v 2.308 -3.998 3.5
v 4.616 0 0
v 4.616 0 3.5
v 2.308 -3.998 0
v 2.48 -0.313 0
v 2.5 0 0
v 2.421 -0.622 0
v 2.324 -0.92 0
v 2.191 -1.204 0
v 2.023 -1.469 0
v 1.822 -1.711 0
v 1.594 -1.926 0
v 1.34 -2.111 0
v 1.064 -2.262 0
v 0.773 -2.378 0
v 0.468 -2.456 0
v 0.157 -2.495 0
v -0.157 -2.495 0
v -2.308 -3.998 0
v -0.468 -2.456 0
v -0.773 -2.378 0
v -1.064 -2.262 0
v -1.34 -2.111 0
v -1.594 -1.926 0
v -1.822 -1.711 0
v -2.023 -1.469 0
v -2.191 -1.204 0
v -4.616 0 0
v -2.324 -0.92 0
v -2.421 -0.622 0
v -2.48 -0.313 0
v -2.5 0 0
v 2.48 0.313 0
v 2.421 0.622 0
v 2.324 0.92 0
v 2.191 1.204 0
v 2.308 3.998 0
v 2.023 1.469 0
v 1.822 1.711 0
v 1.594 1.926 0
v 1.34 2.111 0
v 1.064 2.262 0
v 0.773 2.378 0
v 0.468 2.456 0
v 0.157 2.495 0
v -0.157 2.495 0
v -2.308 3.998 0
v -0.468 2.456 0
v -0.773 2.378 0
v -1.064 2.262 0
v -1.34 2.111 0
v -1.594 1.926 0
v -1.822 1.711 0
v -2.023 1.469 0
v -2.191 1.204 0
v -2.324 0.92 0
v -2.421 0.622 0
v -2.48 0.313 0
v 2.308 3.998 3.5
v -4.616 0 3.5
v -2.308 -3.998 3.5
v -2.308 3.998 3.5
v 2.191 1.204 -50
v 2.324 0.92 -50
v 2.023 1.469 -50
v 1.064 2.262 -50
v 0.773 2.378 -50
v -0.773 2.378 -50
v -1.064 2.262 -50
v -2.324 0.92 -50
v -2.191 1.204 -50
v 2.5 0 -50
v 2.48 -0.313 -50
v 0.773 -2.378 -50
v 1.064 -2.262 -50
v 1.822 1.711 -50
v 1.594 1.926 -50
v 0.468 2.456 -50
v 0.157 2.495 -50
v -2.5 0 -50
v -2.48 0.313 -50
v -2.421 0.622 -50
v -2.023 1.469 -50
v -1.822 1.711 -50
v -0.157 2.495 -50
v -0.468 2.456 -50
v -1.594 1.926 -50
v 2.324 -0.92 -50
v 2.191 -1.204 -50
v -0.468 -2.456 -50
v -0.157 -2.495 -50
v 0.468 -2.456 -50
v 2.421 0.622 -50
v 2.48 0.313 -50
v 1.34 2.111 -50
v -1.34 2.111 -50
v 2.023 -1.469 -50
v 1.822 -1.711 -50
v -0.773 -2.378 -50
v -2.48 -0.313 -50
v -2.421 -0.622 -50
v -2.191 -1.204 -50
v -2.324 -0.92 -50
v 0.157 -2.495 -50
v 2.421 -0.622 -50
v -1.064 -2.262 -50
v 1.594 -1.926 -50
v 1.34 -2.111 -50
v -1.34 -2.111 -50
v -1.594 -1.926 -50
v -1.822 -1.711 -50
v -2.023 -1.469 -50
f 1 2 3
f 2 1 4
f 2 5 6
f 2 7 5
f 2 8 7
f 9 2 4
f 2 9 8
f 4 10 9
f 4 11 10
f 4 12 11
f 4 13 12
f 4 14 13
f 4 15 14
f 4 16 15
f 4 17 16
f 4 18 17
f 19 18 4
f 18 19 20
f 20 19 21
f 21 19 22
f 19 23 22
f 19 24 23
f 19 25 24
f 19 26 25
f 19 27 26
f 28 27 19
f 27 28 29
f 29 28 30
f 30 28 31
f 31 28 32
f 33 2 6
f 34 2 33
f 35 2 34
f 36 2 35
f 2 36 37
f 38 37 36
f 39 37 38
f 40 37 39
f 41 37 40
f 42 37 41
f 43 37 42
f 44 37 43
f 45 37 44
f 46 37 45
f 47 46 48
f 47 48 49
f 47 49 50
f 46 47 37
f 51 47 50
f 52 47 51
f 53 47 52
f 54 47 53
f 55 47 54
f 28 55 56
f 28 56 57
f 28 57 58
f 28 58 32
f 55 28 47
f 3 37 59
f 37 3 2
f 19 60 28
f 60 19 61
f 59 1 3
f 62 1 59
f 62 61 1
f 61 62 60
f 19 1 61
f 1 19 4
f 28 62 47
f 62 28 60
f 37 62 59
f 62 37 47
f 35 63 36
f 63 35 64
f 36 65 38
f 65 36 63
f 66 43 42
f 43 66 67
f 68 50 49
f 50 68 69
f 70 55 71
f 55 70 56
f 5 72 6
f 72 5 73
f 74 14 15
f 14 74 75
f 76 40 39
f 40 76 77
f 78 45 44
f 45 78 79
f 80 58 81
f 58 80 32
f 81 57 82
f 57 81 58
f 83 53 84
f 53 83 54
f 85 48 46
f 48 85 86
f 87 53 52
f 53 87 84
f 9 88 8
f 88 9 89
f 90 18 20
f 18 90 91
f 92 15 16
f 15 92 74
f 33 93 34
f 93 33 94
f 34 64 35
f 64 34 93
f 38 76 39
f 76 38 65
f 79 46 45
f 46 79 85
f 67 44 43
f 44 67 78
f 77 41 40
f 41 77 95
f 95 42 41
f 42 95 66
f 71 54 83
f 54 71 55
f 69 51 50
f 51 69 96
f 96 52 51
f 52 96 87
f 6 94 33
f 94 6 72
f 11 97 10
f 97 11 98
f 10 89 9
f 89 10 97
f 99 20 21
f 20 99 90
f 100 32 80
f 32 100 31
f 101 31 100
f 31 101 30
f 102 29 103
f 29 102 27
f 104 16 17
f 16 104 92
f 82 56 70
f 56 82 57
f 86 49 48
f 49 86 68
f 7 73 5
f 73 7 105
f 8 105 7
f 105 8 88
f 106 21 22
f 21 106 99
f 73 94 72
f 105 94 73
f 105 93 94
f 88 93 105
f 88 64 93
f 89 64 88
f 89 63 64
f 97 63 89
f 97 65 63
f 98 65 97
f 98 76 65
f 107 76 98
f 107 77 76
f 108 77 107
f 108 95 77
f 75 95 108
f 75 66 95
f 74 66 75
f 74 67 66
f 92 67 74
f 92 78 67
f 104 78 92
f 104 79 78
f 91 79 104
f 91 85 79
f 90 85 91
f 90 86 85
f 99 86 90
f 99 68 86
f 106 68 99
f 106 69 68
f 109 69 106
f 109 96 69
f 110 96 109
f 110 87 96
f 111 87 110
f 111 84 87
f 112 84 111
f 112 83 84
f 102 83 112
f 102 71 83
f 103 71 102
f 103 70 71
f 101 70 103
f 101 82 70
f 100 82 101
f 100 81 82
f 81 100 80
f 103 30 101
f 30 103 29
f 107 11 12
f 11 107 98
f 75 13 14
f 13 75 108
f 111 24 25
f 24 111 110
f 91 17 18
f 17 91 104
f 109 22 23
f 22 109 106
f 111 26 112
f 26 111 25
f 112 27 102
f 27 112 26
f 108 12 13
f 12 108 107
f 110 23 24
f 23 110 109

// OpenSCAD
$fn = 50;


difference() {
	union() {
		translate(v = [0, 0, 0]) {
			rotate(a = [0, 0, 0]) {
				translate(v = [0, 0, 0]) {
					rotate(a = [0, 0, 0]) {
						linear_extrude(height = 3.5000000000) {
							polygon(points = [[4.6160000000, 0.0000000000], [2.3080000000, 3.9975732639], [-2.3080000000, 3.9975732639], [-4.6160000000, 0.0000000000], [-2.3080000000, -3.9975732639], [2.3080000000, -3.9975732639]]);
						}
					}
				}
			}
		}
		translate(v = [0, 0, -50]) {
			rotate(a = [0, 0, 0]) {
				cylinder(h = 50, r = 2.5000000000);
			}
		}
	}
	union();
}
